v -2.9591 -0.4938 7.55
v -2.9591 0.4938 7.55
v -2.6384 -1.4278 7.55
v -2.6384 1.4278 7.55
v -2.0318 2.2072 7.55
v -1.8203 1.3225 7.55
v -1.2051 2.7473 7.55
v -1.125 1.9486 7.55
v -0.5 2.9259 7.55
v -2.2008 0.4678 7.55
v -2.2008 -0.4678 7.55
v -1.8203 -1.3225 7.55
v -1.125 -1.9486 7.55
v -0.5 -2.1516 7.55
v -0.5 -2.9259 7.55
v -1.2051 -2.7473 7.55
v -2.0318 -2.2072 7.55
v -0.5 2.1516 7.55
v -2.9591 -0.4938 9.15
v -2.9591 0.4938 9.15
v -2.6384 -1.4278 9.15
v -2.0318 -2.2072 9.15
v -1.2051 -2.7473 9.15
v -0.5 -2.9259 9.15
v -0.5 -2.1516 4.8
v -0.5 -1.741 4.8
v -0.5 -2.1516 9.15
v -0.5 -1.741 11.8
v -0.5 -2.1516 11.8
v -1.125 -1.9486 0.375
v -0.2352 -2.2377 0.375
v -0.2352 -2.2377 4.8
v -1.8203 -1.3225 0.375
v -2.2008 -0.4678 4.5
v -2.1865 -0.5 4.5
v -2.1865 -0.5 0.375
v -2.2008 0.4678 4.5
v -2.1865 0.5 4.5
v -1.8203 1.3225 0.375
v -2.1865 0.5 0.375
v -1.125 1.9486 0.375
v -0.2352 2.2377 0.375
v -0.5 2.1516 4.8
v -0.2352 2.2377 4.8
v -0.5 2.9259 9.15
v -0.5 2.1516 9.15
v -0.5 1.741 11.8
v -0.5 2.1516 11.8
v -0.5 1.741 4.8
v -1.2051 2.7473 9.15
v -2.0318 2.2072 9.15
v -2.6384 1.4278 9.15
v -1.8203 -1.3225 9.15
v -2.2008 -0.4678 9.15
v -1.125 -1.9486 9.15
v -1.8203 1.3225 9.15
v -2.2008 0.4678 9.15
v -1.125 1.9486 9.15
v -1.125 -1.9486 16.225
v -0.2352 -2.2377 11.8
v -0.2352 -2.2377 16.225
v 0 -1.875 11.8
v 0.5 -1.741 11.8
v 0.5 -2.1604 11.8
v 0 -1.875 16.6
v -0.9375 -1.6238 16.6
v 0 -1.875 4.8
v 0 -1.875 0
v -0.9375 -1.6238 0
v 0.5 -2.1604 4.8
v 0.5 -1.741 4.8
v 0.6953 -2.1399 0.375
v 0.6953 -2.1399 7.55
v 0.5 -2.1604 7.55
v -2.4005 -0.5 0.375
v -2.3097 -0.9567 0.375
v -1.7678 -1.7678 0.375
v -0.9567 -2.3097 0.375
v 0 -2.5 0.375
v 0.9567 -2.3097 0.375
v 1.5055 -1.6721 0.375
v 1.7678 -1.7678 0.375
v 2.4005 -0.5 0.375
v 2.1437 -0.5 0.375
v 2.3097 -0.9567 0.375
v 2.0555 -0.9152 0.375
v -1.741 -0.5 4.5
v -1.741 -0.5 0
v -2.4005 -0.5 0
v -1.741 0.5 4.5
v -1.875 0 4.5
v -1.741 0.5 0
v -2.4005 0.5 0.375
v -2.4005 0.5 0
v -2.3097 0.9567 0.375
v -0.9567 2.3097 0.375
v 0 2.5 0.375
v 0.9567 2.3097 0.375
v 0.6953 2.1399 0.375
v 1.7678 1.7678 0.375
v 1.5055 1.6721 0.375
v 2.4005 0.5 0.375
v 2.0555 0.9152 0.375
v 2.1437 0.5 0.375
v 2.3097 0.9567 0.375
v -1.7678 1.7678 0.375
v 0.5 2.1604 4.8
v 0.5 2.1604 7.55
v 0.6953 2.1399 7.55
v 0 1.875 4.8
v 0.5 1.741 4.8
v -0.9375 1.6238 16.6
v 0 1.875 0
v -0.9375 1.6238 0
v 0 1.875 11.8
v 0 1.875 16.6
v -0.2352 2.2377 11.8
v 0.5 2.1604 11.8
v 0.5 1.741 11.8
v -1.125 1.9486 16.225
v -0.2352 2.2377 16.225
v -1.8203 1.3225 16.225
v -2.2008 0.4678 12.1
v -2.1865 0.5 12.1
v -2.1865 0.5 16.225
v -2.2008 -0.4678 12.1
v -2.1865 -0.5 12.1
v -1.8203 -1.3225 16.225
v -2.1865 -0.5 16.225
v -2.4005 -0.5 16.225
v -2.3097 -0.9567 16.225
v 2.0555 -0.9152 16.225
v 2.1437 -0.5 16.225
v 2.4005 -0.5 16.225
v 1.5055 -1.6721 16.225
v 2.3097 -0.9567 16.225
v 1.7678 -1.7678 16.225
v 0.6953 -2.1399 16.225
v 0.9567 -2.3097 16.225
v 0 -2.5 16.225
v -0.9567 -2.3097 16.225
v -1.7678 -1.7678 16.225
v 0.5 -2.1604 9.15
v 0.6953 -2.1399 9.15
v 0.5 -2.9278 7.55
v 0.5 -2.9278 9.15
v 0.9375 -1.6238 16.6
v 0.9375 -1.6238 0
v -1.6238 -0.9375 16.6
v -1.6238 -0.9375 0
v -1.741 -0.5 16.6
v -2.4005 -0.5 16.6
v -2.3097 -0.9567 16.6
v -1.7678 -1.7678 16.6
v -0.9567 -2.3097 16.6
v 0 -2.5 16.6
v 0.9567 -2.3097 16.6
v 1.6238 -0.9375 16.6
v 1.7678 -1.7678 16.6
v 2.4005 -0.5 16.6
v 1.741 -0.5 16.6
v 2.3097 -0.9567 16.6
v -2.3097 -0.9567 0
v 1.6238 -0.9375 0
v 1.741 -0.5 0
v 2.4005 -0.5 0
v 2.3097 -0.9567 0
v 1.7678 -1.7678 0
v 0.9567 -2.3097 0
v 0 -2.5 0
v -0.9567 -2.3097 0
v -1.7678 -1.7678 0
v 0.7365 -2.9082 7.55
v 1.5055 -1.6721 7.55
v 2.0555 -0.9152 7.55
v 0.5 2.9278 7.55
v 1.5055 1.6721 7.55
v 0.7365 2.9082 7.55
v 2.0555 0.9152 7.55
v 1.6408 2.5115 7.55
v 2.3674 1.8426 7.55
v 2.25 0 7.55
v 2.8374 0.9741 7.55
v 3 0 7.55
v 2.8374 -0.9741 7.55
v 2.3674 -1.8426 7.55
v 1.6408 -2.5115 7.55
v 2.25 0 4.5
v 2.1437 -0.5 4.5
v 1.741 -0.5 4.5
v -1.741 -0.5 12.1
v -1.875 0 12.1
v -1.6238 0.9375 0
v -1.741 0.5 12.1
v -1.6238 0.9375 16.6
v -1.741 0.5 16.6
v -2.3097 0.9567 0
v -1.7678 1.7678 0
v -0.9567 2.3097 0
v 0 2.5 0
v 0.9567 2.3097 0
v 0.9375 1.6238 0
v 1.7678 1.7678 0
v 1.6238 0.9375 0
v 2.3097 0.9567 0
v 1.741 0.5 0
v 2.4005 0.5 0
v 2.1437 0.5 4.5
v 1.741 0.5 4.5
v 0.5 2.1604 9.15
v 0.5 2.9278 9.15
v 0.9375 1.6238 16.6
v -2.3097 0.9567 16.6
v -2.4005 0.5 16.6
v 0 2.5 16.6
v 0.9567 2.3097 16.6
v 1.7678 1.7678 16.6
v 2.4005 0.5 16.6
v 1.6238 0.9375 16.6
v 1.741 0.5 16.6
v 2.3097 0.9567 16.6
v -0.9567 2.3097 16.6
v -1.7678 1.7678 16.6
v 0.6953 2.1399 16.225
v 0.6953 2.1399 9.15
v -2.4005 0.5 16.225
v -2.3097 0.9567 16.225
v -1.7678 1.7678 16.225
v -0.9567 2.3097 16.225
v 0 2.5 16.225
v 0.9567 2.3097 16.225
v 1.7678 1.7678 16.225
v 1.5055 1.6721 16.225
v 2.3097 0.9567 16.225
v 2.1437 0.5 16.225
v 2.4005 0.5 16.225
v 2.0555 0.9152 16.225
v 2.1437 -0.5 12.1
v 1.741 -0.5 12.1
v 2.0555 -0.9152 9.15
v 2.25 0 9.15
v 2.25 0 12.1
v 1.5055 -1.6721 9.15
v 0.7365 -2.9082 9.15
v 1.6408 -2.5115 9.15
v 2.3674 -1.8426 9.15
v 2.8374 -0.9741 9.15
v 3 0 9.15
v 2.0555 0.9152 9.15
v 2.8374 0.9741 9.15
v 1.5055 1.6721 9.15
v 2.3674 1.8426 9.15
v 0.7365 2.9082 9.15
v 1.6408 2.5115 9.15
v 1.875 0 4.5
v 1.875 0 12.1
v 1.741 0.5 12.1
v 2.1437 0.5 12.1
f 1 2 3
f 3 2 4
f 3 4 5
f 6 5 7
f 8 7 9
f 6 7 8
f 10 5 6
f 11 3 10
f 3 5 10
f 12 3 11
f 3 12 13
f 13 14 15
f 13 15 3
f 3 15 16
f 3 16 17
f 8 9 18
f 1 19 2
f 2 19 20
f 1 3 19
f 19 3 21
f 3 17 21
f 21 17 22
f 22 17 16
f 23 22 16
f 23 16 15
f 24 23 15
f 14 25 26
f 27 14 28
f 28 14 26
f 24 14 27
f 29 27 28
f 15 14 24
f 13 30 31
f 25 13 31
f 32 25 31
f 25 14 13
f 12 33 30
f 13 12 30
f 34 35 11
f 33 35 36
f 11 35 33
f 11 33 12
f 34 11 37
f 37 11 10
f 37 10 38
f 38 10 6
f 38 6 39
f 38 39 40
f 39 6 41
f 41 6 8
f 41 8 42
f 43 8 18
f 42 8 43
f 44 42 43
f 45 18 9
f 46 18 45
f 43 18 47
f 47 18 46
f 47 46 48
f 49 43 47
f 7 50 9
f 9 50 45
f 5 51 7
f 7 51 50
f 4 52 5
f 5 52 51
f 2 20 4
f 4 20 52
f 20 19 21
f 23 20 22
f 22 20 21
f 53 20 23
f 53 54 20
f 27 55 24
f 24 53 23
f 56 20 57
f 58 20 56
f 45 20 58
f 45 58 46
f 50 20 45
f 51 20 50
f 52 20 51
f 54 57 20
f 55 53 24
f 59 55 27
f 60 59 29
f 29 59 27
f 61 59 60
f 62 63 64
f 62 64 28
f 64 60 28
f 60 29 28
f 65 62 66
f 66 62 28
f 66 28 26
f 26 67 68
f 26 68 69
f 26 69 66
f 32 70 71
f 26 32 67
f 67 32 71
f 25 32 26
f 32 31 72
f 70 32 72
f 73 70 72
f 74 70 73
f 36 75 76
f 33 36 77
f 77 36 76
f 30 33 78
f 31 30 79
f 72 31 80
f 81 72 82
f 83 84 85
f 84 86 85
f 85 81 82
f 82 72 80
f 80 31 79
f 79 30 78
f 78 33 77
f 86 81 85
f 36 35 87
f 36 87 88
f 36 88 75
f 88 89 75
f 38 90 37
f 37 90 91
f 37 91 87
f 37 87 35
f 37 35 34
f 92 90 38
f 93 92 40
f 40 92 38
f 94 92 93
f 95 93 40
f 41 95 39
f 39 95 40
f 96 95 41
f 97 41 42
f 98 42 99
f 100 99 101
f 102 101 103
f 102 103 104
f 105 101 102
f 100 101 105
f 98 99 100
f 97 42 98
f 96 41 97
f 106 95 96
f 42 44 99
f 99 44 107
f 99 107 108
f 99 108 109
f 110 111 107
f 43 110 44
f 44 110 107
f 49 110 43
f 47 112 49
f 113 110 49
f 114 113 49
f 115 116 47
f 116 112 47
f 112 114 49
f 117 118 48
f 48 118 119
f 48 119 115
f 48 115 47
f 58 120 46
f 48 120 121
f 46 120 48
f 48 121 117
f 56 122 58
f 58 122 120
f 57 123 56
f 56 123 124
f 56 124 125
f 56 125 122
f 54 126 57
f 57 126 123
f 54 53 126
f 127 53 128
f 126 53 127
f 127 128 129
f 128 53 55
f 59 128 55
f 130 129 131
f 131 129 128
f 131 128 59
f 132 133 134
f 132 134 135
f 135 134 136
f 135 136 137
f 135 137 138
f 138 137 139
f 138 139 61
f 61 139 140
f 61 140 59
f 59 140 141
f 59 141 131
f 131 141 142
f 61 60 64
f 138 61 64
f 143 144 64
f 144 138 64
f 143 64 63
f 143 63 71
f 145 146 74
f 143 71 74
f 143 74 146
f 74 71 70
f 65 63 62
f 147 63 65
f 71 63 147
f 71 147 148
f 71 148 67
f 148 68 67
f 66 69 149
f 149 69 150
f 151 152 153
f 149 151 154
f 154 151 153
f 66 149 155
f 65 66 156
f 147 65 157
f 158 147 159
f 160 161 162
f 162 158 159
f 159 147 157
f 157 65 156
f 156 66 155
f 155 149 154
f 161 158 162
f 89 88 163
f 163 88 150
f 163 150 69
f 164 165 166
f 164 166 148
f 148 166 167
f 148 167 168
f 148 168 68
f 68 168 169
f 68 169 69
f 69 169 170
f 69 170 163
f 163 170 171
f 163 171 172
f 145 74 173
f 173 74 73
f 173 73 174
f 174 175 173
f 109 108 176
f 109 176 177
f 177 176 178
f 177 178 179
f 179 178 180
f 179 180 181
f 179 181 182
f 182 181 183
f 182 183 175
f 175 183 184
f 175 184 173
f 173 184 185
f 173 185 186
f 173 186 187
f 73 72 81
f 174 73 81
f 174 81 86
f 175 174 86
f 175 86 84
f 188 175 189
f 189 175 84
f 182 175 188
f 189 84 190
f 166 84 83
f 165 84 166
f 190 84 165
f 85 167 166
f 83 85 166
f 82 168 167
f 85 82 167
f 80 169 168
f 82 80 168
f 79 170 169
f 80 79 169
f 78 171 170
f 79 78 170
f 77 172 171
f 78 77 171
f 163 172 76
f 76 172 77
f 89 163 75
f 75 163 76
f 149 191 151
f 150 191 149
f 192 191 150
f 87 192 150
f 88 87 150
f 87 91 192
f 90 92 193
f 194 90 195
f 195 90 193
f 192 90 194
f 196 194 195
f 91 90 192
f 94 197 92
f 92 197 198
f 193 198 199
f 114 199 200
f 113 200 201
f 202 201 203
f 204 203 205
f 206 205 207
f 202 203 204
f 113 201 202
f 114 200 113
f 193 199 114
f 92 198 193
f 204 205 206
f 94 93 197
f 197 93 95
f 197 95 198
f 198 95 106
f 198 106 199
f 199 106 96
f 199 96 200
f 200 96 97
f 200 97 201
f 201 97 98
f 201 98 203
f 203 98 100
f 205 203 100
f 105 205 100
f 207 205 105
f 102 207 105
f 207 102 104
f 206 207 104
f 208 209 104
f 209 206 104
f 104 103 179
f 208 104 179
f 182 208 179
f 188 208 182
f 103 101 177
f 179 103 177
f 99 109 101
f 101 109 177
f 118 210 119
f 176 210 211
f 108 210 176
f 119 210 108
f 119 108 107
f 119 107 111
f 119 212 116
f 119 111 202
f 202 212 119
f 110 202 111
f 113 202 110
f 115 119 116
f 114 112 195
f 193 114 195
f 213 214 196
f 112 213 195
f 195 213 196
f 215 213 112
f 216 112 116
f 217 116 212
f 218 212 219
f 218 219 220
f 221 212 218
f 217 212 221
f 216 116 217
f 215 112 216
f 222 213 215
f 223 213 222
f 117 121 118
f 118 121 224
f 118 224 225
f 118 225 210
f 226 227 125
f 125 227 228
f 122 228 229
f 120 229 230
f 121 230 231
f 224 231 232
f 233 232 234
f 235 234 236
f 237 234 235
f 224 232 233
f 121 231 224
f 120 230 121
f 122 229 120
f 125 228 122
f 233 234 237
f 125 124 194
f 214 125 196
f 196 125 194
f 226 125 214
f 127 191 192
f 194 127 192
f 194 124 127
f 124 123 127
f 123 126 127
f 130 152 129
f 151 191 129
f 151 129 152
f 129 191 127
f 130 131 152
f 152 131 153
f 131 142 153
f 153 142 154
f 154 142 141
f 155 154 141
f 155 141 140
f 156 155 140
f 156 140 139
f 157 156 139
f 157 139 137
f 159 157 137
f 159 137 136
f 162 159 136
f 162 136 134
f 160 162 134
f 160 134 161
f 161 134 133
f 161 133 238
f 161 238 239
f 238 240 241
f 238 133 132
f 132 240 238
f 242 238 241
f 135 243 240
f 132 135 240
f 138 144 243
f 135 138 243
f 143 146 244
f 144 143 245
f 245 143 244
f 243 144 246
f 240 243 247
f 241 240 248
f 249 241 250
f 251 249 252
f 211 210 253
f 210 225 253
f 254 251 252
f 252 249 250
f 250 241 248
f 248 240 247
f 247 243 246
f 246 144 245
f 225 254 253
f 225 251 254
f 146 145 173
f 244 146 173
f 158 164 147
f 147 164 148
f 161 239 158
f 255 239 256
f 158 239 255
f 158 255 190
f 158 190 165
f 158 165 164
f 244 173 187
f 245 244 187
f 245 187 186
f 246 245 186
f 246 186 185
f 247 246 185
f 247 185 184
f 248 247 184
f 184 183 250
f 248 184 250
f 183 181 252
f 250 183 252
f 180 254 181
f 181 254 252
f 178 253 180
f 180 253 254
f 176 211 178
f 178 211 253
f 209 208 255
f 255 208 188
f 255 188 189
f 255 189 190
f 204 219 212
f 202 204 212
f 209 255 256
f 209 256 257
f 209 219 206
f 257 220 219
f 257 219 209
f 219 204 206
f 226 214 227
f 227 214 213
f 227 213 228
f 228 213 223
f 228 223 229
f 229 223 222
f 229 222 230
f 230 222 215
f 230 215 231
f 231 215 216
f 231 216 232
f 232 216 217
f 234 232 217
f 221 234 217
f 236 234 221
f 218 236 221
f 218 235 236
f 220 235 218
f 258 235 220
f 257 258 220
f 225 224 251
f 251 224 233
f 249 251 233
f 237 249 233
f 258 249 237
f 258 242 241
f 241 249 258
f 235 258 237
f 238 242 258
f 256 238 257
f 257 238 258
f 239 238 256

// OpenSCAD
difference() {
union() {
cylinder (h = 0.375, r = 2.5, $fs = 1);
cylinder (h = 16.6, r = 2.25, $fs = 1);
translate([0,0,16.225]) 
cylinder (h = .375, r = 2.5, $fs = 1);
translate([0,0,7.55])
cylinder(h = 1.6, r = 3.00, $fs = 1);
}
translate([0,0,-.05])
cylinder (h = 16.7, r = 1.875, $fs = 1);
cube([10,1,9], center = true);
translate([0,0,16.6])
cube([10,1,9], center = true);
translate([0,0,8.3]) 
cube([1,10,7], center = true);
}
